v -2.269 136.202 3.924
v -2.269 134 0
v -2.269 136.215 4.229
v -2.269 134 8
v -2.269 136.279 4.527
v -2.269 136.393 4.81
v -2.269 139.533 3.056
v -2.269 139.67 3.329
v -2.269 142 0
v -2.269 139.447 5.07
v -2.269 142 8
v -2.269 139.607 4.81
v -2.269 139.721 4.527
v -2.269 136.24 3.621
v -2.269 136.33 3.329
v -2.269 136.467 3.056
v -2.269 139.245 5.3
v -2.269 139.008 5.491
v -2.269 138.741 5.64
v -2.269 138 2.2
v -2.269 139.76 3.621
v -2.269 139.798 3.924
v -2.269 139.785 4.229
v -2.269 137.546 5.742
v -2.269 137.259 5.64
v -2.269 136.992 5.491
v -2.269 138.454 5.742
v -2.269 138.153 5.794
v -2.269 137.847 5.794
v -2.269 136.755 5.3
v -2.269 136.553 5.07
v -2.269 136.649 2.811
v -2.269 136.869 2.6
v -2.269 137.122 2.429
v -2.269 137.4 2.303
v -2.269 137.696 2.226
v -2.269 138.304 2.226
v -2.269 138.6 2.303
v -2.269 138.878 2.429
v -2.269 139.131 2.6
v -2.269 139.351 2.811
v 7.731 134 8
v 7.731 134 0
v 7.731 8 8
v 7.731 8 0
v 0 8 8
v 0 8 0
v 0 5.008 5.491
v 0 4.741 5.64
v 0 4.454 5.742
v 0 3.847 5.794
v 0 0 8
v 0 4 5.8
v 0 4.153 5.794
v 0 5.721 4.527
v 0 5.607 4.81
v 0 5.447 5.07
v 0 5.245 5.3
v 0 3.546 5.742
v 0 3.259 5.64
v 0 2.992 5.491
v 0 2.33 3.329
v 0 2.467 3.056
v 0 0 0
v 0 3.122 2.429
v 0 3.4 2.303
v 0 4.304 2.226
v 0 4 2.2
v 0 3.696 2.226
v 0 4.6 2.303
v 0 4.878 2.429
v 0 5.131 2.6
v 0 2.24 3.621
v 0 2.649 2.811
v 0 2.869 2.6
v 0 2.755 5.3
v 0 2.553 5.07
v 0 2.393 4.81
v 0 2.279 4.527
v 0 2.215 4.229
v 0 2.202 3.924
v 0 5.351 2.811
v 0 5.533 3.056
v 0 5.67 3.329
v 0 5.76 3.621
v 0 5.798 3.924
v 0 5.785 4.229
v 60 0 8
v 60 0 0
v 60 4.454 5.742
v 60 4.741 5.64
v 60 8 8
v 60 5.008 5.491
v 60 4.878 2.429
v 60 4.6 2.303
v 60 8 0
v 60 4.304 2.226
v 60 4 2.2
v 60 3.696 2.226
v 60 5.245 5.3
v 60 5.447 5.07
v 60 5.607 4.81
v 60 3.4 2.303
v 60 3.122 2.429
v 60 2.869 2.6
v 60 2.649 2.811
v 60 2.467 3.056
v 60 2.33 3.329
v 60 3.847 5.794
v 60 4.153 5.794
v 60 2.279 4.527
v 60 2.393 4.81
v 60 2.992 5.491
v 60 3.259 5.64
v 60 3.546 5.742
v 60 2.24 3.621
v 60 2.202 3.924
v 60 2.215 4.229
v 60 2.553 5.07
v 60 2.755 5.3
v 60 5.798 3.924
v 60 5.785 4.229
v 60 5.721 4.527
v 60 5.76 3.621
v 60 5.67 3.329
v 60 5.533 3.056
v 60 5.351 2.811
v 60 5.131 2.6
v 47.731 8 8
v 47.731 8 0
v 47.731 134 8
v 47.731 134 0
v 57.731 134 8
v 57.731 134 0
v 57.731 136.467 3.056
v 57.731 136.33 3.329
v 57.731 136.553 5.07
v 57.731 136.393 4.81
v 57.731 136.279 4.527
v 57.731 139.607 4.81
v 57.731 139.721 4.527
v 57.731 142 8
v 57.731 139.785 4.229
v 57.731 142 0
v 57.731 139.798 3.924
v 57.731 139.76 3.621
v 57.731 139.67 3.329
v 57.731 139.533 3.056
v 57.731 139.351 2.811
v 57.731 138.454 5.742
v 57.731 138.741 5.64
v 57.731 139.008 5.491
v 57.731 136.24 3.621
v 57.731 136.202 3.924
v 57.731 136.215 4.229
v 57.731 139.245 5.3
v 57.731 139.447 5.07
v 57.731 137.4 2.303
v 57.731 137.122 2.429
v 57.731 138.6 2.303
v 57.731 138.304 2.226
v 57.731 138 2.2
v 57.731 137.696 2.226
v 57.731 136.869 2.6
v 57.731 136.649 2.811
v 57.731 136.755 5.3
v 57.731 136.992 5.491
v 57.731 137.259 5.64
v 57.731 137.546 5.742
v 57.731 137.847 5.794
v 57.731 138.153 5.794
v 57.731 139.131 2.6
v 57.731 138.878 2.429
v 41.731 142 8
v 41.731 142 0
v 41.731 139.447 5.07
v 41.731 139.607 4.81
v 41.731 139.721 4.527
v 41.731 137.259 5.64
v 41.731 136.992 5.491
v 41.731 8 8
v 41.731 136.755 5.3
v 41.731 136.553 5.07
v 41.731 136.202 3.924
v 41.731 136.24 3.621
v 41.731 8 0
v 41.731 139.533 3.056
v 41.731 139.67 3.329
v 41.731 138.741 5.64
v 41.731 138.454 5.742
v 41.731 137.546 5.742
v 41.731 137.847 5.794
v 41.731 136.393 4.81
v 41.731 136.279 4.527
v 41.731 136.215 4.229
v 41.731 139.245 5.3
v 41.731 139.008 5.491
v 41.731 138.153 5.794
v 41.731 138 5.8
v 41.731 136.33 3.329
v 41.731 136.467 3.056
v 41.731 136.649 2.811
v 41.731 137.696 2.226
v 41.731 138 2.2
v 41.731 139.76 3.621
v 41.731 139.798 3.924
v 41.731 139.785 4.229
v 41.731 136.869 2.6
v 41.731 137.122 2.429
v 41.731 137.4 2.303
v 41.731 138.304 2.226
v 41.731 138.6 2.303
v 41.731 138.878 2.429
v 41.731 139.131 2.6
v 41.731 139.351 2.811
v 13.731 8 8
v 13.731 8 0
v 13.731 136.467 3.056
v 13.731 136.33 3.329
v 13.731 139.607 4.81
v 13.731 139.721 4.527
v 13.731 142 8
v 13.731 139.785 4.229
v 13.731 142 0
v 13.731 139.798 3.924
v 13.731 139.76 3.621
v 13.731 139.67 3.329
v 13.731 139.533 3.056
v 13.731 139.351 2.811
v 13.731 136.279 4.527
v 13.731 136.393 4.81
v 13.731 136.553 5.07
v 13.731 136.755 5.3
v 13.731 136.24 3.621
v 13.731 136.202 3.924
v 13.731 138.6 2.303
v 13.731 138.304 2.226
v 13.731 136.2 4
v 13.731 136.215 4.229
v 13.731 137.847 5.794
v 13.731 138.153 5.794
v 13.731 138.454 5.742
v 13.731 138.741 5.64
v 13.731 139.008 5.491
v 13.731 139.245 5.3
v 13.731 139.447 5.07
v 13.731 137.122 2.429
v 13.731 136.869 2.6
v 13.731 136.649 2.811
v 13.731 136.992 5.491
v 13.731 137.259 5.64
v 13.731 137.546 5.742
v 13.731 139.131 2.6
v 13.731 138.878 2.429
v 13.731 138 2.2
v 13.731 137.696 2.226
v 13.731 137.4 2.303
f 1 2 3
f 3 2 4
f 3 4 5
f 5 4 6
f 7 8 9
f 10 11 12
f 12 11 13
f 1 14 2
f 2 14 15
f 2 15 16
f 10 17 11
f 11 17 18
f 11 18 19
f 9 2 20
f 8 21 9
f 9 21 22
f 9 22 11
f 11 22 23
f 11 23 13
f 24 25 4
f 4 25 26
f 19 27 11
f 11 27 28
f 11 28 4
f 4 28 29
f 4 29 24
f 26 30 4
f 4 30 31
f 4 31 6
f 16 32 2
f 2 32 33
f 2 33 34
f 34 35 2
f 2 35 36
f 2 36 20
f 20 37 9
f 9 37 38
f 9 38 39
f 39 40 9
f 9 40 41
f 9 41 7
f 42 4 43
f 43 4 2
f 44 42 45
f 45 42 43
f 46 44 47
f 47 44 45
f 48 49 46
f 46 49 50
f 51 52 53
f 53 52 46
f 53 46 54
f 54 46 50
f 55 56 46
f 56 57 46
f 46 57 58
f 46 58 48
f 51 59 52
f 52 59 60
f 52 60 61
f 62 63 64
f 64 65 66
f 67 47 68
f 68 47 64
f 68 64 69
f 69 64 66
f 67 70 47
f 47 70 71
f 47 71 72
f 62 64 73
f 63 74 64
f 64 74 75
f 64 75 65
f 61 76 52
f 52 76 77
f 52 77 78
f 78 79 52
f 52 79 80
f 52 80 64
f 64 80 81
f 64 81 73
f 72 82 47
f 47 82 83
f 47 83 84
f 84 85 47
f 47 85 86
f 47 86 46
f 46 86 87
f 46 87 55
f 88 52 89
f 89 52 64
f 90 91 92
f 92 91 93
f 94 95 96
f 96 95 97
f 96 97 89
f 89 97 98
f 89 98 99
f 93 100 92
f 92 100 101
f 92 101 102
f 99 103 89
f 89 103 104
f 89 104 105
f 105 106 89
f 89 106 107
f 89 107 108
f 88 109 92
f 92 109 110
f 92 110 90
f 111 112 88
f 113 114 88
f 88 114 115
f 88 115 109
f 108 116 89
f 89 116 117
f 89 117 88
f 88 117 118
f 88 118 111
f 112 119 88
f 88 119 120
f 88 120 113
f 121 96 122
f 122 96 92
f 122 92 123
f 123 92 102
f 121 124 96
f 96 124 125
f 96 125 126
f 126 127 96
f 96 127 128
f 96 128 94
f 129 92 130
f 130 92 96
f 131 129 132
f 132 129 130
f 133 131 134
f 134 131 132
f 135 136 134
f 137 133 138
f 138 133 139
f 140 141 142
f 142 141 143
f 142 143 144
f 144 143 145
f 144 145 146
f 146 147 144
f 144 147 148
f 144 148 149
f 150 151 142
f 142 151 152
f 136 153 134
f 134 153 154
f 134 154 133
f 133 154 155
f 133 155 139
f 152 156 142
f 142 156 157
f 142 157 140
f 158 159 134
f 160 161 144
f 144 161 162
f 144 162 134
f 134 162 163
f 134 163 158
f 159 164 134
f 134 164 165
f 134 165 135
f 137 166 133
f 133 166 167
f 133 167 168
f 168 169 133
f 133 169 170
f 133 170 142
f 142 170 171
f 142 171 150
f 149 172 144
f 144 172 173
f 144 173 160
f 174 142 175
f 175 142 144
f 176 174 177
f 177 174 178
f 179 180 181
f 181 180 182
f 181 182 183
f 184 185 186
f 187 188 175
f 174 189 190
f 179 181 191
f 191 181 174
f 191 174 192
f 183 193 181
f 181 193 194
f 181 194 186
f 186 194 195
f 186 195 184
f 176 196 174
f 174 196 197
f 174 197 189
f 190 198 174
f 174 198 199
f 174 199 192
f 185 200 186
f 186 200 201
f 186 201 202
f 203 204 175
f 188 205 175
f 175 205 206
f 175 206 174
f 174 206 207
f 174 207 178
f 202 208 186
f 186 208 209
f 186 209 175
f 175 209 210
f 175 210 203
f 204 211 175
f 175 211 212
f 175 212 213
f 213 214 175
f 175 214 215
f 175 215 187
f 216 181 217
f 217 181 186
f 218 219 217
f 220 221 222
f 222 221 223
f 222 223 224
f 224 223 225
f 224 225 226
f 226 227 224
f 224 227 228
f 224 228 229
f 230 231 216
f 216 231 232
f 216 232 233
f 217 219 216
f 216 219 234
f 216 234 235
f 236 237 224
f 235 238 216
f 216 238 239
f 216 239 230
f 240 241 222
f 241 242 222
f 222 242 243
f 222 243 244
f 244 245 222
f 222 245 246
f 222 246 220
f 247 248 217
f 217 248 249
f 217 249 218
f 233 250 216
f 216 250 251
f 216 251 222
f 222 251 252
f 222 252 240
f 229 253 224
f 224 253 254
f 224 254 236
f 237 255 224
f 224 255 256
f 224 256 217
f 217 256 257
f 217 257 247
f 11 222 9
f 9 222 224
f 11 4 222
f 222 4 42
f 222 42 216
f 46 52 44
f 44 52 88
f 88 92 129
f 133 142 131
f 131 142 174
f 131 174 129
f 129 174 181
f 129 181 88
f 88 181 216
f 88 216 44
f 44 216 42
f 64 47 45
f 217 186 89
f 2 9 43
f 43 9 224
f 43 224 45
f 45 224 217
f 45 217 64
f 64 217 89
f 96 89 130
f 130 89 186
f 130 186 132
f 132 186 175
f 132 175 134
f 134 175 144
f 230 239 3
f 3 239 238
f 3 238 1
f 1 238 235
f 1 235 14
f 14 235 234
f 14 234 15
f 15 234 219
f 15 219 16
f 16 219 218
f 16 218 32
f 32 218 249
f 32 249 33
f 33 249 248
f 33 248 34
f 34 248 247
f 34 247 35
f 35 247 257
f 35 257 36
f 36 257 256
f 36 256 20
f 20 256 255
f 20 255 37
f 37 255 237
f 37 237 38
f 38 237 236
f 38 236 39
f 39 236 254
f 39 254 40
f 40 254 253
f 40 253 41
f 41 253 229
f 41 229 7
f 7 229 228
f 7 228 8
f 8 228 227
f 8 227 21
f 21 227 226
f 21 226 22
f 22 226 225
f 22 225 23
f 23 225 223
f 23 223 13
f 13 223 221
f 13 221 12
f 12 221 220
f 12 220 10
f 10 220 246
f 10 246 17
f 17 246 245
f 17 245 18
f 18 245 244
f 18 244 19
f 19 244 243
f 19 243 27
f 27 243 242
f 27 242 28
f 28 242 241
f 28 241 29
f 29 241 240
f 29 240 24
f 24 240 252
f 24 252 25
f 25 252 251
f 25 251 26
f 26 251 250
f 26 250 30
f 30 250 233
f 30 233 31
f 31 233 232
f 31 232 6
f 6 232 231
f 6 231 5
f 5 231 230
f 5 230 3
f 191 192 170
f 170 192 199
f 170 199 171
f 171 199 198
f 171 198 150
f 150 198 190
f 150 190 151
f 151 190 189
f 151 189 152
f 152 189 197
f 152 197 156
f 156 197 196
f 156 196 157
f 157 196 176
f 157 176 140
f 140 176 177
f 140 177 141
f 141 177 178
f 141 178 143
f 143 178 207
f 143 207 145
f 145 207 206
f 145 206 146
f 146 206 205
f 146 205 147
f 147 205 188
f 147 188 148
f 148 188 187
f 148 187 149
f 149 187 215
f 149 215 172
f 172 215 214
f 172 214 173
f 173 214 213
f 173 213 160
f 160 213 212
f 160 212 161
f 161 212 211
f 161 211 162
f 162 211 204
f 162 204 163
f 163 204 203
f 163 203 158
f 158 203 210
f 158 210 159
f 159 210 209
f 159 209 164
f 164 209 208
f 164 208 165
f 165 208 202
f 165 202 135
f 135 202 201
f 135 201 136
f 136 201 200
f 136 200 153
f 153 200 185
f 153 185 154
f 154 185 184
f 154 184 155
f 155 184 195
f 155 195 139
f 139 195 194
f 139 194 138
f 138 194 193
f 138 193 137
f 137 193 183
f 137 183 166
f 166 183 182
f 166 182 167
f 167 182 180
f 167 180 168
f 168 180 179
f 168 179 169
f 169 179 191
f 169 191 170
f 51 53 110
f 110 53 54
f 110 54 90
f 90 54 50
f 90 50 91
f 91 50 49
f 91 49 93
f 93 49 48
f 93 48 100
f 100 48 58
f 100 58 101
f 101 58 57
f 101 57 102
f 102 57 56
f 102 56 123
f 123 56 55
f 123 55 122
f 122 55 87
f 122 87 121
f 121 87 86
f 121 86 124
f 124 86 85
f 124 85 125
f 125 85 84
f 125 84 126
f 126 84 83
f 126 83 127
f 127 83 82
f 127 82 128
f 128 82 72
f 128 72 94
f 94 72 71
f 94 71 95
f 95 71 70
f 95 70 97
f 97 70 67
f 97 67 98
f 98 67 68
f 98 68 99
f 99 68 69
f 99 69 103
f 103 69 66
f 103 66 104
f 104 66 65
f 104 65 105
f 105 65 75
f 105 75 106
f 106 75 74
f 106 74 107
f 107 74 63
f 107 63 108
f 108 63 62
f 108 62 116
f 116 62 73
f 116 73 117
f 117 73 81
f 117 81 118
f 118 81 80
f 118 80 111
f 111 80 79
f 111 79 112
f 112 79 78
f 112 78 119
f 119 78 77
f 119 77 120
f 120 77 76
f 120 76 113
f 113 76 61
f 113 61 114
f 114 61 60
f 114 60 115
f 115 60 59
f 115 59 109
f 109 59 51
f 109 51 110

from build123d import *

# Parameters (mm, degrees)
CROQUIS8_W                   = 6
CROQUIS8_H                   = 126
CROQUIS8_W_2                 = 60
CROQUIS8_H_2                 = 8
SALIENTE_EXTRUIR1_DEPTH      = 8
TALADRO_DE_MARGEN_PARA_M31_D = 3.6
TALADRO_DE_MARGEN_PARA_M32_D = 3.6


with BuildPart() as part:
    # Croquis8 → Saliente-Extruir1 (new body)
    with BuildSketch(Plane.XY):
        Polygon((7.730954987, 134), (13.730954987, 134), (13.730954987, 142), (-2.269045013, 142), (-2.269045013, 134), align=None)
        with Locations((10.730954987, 71)):
            Rectangle(CROQUIS8_W, CROQUIS8_H)
        Polygon((41.730954987, 142), (41.730954987, 134), (47.730954987, 134), (57.730954987, 134), (57.730954987, 142), align=None)
        with Locations((44.730954987, 71)):
            Rectangle(CROQUIS8_W, CROQUIS8_H)
        with Locations((30, 4)):
            Rectangle(CROQUIS8_W_2, CROQUIS8_H_2)
    extrude(amount=SALIENTE_EXTRUIR1_DEPTH)

    # Taladro de margen para M31 (through all)
    with Locations(Plane(origin=(57.730954987, 0, 0), x_dir=(0, 0, -1), z_dir=(1, 0, 0))):
        with Locations((-4, 138)):
            Hole(TALADRO_DE_MARGEN_PARA_M31_D / 2)

    # Taladro de margen para M32 (through all)
    with Locations(Plane(origin=(60, 0, 0), x_dir=(0, 0, -1), z_dir=(1, 0, 0))):
        with Locations((-4, 4)):
            Hole(TALADRO_DE_MARGEN_PARA_M32_D / 2)


solid = part.part
